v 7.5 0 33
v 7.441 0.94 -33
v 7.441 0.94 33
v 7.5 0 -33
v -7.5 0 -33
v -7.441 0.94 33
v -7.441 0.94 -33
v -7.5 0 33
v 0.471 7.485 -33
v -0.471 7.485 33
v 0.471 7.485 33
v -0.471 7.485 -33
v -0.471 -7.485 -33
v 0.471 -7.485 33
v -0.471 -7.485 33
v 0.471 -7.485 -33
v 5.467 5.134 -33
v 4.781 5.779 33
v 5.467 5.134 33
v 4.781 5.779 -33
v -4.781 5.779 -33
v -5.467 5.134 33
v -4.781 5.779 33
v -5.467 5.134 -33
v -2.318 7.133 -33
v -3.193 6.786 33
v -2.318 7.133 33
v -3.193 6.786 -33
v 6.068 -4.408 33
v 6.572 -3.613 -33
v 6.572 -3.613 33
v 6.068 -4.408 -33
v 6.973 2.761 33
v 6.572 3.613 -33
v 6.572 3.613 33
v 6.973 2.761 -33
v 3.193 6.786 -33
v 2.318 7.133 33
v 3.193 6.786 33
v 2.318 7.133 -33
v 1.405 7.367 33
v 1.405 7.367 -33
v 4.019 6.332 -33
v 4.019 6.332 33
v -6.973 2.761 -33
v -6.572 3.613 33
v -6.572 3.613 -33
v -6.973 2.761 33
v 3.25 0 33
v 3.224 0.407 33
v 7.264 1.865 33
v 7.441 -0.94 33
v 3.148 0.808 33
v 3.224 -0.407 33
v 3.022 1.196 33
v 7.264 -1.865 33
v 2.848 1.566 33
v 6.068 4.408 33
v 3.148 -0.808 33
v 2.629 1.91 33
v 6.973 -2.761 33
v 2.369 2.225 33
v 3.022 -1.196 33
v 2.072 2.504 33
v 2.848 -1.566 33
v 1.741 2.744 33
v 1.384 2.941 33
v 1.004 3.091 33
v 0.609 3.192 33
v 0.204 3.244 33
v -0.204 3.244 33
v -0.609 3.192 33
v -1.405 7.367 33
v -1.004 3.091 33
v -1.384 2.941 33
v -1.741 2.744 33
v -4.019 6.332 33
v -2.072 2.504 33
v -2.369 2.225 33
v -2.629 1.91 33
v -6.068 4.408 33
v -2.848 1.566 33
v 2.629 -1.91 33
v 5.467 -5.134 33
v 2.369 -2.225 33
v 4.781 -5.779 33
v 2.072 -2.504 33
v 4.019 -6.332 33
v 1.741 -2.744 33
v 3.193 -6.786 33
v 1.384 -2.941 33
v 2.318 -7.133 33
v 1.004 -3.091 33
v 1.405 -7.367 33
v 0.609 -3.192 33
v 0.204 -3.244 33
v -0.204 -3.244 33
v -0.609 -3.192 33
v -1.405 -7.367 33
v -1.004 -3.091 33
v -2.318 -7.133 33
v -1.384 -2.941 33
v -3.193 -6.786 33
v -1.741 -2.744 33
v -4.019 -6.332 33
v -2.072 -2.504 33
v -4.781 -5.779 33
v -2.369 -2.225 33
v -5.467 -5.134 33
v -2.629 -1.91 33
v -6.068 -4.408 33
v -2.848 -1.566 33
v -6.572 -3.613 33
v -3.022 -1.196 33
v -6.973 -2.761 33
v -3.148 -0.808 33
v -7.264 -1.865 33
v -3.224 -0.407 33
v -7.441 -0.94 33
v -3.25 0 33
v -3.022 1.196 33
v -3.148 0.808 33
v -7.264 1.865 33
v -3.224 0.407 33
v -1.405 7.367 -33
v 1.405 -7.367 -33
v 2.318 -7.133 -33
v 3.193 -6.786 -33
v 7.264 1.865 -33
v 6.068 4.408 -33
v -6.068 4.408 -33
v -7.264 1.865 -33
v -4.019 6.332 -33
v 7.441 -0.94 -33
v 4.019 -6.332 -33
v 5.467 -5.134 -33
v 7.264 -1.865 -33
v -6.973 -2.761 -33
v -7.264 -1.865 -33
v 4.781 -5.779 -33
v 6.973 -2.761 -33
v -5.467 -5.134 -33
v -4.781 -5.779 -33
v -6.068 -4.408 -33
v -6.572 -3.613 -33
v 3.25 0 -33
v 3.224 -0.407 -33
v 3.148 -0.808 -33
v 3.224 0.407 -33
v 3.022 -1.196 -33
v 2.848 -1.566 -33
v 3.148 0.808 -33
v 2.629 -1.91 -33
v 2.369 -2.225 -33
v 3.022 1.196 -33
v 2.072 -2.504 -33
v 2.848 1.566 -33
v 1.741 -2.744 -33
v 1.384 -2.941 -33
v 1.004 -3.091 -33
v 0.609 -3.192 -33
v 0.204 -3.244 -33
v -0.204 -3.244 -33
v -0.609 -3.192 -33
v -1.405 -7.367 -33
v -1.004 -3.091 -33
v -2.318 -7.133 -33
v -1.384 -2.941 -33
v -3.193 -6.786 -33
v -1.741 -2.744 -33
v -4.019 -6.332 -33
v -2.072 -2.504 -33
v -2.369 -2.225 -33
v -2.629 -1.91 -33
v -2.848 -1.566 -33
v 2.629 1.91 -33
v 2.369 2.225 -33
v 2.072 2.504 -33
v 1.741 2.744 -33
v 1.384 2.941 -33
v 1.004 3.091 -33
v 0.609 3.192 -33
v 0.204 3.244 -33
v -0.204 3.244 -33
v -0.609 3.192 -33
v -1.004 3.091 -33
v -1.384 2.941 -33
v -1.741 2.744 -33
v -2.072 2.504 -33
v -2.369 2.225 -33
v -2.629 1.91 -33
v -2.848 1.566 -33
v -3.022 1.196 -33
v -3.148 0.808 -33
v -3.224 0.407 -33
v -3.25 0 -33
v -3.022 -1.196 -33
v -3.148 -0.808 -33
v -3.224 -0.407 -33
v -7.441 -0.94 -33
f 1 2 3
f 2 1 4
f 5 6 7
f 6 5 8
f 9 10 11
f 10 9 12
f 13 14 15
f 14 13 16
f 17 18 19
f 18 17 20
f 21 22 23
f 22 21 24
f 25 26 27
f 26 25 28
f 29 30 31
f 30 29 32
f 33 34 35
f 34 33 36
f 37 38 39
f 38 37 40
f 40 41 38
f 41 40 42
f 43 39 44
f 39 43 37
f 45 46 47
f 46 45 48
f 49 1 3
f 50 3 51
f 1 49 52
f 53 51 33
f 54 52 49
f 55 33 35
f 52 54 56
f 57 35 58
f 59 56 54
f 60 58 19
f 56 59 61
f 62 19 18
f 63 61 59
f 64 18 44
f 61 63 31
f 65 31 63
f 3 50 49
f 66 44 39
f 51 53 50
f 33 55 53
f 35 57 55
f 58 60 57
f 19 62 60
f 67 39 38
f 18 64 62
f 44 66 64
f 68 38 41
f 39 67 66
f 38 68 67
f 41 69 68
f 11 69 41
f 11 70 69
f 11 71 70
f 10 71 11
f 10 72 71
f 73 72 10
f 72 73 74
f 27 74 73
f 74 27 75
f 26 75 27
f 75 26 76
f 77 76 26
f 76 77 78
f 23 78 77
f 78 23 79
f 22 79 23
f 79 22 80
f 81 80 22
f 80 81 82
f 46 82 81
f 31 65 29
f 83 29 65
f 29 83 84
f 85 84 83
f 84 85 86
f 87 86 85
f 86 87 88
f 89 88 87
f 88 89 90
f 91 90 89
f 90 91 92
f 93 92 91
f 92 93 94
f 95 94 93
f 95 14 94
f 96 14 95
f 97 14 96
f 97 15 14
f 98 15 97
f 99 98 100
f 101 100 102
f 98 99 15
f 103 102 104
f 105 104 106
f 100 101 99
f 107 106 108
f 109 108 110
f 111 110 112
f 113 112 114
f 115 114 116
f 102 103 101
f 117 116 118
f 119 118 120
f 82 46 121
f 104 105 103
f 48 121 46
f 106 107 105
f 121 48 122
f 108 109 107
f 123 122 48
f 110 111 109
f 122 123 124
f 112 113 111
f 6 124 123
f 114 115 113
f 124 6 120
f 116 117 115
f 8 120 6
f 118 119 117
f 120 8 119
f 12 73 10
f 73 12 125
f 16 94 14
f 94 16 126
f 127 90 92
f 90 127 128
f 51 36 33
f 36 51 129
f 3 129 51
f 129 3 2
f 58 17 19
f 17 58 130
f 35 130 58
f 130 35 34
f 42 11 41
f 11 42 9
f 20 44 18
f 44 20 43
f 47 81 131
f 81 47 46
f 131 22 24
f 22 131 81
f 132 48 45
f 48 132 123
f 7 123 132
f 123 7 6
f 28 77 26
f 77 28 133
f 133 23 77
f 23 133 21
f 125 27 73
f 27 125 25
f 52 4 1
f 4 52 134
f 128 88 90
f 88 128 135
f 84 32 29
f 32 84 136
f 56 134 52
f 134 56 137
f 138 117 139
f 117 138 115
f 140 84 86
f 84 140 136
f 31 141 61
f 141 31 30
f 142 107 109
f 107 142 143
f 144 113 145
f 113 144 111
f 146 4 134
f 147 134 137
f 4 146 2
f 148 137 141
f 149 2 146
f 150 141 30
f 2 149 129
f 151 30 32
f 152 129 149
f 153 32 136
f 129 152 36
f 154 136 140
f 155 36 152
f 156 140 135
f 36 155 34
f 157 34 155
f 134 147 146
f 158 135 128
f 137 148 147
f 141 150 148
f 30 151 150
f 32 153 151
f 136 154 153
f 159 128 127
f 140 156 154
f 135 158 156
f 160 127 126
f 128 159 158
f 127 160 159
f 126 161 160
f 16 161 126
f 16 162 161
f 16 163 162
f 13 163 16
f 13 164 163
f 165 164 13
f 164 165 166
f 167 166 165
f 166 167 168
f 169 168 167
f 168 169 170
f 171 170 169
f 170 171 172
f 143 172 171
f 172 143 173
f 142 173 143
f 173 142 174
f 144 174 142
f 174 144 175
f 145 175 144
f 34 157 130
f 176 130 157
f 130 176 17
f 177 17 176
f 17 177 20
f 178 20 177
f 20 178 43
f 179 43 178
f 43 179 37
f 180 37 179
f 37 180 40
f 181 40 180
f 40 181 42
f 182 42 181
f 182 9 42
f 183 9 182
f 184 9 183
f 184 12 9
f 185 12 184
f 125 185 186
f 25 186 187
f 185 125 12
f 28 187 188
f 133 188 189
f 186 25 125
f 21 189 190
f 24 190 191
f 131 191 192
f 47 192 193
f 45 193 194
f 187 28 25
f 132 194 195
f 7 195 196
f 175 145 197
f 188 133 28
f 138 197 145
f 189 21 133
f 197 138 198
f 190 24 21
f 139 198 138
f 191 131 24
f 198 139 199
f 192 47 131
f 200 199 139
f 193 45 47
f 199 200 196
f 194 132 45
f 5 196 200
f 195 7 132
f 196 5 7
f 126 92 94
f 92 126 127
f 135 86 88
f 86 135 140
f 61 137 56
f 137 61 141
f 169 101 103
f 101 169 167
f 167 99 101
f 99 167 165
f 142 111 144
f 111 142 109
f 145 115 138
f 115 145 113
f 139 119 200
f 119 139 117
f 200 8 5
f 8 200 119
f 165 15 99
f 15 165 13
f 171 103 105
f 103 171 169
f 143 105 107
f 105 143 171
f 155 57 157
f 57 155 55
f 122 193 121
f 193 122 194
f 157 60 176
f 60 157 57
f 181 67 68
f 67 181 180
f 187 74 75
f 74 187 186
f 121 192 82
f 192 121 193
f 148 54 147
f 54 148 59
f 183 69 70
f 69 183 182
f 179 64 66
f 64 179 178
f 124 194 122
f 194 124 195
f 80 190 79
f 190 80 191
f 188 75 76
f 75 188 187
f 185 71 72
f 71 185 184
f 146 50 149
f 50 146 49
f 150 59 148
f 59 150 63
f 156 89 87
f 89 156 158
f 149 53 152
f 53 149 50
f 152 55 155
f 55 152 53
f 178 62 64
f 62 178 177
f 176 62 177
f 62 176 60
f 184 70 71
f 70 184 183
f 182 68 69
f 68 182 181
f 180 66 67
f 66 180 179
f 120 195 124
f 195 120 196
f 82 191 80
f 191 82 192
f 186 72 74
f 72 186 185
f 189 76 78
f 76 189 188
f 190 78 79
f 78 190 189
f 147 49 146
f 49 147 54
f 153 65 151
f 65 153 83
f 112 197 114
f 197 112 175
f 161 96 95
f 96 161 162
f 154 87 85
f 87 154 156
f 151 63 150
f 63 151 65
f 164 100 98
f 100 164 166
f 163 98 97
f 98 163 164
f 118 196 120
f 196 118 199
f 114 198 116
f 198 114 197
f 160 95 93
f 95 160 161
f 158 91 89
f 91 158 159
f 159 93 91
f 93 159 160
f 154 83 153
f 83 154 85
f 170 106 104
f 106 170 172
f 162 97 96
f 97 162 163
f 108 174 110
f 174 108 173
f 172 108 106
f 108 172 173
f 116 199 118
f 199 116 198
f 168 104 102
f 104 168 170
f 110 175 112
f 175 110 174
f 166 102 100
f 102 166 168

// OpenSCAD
$fn = 50;


difference() {
	union() {
		translate(v = [0, 0, -33.0000000000]) {
			cylinder(h = 66, r = 7.5000000000);
		}
	}
	union() {
		translate(v = [0, 0, -100.0000000000]) {
			cylinder(h = 200, r = 3.2500000000);
		}
	}
}
